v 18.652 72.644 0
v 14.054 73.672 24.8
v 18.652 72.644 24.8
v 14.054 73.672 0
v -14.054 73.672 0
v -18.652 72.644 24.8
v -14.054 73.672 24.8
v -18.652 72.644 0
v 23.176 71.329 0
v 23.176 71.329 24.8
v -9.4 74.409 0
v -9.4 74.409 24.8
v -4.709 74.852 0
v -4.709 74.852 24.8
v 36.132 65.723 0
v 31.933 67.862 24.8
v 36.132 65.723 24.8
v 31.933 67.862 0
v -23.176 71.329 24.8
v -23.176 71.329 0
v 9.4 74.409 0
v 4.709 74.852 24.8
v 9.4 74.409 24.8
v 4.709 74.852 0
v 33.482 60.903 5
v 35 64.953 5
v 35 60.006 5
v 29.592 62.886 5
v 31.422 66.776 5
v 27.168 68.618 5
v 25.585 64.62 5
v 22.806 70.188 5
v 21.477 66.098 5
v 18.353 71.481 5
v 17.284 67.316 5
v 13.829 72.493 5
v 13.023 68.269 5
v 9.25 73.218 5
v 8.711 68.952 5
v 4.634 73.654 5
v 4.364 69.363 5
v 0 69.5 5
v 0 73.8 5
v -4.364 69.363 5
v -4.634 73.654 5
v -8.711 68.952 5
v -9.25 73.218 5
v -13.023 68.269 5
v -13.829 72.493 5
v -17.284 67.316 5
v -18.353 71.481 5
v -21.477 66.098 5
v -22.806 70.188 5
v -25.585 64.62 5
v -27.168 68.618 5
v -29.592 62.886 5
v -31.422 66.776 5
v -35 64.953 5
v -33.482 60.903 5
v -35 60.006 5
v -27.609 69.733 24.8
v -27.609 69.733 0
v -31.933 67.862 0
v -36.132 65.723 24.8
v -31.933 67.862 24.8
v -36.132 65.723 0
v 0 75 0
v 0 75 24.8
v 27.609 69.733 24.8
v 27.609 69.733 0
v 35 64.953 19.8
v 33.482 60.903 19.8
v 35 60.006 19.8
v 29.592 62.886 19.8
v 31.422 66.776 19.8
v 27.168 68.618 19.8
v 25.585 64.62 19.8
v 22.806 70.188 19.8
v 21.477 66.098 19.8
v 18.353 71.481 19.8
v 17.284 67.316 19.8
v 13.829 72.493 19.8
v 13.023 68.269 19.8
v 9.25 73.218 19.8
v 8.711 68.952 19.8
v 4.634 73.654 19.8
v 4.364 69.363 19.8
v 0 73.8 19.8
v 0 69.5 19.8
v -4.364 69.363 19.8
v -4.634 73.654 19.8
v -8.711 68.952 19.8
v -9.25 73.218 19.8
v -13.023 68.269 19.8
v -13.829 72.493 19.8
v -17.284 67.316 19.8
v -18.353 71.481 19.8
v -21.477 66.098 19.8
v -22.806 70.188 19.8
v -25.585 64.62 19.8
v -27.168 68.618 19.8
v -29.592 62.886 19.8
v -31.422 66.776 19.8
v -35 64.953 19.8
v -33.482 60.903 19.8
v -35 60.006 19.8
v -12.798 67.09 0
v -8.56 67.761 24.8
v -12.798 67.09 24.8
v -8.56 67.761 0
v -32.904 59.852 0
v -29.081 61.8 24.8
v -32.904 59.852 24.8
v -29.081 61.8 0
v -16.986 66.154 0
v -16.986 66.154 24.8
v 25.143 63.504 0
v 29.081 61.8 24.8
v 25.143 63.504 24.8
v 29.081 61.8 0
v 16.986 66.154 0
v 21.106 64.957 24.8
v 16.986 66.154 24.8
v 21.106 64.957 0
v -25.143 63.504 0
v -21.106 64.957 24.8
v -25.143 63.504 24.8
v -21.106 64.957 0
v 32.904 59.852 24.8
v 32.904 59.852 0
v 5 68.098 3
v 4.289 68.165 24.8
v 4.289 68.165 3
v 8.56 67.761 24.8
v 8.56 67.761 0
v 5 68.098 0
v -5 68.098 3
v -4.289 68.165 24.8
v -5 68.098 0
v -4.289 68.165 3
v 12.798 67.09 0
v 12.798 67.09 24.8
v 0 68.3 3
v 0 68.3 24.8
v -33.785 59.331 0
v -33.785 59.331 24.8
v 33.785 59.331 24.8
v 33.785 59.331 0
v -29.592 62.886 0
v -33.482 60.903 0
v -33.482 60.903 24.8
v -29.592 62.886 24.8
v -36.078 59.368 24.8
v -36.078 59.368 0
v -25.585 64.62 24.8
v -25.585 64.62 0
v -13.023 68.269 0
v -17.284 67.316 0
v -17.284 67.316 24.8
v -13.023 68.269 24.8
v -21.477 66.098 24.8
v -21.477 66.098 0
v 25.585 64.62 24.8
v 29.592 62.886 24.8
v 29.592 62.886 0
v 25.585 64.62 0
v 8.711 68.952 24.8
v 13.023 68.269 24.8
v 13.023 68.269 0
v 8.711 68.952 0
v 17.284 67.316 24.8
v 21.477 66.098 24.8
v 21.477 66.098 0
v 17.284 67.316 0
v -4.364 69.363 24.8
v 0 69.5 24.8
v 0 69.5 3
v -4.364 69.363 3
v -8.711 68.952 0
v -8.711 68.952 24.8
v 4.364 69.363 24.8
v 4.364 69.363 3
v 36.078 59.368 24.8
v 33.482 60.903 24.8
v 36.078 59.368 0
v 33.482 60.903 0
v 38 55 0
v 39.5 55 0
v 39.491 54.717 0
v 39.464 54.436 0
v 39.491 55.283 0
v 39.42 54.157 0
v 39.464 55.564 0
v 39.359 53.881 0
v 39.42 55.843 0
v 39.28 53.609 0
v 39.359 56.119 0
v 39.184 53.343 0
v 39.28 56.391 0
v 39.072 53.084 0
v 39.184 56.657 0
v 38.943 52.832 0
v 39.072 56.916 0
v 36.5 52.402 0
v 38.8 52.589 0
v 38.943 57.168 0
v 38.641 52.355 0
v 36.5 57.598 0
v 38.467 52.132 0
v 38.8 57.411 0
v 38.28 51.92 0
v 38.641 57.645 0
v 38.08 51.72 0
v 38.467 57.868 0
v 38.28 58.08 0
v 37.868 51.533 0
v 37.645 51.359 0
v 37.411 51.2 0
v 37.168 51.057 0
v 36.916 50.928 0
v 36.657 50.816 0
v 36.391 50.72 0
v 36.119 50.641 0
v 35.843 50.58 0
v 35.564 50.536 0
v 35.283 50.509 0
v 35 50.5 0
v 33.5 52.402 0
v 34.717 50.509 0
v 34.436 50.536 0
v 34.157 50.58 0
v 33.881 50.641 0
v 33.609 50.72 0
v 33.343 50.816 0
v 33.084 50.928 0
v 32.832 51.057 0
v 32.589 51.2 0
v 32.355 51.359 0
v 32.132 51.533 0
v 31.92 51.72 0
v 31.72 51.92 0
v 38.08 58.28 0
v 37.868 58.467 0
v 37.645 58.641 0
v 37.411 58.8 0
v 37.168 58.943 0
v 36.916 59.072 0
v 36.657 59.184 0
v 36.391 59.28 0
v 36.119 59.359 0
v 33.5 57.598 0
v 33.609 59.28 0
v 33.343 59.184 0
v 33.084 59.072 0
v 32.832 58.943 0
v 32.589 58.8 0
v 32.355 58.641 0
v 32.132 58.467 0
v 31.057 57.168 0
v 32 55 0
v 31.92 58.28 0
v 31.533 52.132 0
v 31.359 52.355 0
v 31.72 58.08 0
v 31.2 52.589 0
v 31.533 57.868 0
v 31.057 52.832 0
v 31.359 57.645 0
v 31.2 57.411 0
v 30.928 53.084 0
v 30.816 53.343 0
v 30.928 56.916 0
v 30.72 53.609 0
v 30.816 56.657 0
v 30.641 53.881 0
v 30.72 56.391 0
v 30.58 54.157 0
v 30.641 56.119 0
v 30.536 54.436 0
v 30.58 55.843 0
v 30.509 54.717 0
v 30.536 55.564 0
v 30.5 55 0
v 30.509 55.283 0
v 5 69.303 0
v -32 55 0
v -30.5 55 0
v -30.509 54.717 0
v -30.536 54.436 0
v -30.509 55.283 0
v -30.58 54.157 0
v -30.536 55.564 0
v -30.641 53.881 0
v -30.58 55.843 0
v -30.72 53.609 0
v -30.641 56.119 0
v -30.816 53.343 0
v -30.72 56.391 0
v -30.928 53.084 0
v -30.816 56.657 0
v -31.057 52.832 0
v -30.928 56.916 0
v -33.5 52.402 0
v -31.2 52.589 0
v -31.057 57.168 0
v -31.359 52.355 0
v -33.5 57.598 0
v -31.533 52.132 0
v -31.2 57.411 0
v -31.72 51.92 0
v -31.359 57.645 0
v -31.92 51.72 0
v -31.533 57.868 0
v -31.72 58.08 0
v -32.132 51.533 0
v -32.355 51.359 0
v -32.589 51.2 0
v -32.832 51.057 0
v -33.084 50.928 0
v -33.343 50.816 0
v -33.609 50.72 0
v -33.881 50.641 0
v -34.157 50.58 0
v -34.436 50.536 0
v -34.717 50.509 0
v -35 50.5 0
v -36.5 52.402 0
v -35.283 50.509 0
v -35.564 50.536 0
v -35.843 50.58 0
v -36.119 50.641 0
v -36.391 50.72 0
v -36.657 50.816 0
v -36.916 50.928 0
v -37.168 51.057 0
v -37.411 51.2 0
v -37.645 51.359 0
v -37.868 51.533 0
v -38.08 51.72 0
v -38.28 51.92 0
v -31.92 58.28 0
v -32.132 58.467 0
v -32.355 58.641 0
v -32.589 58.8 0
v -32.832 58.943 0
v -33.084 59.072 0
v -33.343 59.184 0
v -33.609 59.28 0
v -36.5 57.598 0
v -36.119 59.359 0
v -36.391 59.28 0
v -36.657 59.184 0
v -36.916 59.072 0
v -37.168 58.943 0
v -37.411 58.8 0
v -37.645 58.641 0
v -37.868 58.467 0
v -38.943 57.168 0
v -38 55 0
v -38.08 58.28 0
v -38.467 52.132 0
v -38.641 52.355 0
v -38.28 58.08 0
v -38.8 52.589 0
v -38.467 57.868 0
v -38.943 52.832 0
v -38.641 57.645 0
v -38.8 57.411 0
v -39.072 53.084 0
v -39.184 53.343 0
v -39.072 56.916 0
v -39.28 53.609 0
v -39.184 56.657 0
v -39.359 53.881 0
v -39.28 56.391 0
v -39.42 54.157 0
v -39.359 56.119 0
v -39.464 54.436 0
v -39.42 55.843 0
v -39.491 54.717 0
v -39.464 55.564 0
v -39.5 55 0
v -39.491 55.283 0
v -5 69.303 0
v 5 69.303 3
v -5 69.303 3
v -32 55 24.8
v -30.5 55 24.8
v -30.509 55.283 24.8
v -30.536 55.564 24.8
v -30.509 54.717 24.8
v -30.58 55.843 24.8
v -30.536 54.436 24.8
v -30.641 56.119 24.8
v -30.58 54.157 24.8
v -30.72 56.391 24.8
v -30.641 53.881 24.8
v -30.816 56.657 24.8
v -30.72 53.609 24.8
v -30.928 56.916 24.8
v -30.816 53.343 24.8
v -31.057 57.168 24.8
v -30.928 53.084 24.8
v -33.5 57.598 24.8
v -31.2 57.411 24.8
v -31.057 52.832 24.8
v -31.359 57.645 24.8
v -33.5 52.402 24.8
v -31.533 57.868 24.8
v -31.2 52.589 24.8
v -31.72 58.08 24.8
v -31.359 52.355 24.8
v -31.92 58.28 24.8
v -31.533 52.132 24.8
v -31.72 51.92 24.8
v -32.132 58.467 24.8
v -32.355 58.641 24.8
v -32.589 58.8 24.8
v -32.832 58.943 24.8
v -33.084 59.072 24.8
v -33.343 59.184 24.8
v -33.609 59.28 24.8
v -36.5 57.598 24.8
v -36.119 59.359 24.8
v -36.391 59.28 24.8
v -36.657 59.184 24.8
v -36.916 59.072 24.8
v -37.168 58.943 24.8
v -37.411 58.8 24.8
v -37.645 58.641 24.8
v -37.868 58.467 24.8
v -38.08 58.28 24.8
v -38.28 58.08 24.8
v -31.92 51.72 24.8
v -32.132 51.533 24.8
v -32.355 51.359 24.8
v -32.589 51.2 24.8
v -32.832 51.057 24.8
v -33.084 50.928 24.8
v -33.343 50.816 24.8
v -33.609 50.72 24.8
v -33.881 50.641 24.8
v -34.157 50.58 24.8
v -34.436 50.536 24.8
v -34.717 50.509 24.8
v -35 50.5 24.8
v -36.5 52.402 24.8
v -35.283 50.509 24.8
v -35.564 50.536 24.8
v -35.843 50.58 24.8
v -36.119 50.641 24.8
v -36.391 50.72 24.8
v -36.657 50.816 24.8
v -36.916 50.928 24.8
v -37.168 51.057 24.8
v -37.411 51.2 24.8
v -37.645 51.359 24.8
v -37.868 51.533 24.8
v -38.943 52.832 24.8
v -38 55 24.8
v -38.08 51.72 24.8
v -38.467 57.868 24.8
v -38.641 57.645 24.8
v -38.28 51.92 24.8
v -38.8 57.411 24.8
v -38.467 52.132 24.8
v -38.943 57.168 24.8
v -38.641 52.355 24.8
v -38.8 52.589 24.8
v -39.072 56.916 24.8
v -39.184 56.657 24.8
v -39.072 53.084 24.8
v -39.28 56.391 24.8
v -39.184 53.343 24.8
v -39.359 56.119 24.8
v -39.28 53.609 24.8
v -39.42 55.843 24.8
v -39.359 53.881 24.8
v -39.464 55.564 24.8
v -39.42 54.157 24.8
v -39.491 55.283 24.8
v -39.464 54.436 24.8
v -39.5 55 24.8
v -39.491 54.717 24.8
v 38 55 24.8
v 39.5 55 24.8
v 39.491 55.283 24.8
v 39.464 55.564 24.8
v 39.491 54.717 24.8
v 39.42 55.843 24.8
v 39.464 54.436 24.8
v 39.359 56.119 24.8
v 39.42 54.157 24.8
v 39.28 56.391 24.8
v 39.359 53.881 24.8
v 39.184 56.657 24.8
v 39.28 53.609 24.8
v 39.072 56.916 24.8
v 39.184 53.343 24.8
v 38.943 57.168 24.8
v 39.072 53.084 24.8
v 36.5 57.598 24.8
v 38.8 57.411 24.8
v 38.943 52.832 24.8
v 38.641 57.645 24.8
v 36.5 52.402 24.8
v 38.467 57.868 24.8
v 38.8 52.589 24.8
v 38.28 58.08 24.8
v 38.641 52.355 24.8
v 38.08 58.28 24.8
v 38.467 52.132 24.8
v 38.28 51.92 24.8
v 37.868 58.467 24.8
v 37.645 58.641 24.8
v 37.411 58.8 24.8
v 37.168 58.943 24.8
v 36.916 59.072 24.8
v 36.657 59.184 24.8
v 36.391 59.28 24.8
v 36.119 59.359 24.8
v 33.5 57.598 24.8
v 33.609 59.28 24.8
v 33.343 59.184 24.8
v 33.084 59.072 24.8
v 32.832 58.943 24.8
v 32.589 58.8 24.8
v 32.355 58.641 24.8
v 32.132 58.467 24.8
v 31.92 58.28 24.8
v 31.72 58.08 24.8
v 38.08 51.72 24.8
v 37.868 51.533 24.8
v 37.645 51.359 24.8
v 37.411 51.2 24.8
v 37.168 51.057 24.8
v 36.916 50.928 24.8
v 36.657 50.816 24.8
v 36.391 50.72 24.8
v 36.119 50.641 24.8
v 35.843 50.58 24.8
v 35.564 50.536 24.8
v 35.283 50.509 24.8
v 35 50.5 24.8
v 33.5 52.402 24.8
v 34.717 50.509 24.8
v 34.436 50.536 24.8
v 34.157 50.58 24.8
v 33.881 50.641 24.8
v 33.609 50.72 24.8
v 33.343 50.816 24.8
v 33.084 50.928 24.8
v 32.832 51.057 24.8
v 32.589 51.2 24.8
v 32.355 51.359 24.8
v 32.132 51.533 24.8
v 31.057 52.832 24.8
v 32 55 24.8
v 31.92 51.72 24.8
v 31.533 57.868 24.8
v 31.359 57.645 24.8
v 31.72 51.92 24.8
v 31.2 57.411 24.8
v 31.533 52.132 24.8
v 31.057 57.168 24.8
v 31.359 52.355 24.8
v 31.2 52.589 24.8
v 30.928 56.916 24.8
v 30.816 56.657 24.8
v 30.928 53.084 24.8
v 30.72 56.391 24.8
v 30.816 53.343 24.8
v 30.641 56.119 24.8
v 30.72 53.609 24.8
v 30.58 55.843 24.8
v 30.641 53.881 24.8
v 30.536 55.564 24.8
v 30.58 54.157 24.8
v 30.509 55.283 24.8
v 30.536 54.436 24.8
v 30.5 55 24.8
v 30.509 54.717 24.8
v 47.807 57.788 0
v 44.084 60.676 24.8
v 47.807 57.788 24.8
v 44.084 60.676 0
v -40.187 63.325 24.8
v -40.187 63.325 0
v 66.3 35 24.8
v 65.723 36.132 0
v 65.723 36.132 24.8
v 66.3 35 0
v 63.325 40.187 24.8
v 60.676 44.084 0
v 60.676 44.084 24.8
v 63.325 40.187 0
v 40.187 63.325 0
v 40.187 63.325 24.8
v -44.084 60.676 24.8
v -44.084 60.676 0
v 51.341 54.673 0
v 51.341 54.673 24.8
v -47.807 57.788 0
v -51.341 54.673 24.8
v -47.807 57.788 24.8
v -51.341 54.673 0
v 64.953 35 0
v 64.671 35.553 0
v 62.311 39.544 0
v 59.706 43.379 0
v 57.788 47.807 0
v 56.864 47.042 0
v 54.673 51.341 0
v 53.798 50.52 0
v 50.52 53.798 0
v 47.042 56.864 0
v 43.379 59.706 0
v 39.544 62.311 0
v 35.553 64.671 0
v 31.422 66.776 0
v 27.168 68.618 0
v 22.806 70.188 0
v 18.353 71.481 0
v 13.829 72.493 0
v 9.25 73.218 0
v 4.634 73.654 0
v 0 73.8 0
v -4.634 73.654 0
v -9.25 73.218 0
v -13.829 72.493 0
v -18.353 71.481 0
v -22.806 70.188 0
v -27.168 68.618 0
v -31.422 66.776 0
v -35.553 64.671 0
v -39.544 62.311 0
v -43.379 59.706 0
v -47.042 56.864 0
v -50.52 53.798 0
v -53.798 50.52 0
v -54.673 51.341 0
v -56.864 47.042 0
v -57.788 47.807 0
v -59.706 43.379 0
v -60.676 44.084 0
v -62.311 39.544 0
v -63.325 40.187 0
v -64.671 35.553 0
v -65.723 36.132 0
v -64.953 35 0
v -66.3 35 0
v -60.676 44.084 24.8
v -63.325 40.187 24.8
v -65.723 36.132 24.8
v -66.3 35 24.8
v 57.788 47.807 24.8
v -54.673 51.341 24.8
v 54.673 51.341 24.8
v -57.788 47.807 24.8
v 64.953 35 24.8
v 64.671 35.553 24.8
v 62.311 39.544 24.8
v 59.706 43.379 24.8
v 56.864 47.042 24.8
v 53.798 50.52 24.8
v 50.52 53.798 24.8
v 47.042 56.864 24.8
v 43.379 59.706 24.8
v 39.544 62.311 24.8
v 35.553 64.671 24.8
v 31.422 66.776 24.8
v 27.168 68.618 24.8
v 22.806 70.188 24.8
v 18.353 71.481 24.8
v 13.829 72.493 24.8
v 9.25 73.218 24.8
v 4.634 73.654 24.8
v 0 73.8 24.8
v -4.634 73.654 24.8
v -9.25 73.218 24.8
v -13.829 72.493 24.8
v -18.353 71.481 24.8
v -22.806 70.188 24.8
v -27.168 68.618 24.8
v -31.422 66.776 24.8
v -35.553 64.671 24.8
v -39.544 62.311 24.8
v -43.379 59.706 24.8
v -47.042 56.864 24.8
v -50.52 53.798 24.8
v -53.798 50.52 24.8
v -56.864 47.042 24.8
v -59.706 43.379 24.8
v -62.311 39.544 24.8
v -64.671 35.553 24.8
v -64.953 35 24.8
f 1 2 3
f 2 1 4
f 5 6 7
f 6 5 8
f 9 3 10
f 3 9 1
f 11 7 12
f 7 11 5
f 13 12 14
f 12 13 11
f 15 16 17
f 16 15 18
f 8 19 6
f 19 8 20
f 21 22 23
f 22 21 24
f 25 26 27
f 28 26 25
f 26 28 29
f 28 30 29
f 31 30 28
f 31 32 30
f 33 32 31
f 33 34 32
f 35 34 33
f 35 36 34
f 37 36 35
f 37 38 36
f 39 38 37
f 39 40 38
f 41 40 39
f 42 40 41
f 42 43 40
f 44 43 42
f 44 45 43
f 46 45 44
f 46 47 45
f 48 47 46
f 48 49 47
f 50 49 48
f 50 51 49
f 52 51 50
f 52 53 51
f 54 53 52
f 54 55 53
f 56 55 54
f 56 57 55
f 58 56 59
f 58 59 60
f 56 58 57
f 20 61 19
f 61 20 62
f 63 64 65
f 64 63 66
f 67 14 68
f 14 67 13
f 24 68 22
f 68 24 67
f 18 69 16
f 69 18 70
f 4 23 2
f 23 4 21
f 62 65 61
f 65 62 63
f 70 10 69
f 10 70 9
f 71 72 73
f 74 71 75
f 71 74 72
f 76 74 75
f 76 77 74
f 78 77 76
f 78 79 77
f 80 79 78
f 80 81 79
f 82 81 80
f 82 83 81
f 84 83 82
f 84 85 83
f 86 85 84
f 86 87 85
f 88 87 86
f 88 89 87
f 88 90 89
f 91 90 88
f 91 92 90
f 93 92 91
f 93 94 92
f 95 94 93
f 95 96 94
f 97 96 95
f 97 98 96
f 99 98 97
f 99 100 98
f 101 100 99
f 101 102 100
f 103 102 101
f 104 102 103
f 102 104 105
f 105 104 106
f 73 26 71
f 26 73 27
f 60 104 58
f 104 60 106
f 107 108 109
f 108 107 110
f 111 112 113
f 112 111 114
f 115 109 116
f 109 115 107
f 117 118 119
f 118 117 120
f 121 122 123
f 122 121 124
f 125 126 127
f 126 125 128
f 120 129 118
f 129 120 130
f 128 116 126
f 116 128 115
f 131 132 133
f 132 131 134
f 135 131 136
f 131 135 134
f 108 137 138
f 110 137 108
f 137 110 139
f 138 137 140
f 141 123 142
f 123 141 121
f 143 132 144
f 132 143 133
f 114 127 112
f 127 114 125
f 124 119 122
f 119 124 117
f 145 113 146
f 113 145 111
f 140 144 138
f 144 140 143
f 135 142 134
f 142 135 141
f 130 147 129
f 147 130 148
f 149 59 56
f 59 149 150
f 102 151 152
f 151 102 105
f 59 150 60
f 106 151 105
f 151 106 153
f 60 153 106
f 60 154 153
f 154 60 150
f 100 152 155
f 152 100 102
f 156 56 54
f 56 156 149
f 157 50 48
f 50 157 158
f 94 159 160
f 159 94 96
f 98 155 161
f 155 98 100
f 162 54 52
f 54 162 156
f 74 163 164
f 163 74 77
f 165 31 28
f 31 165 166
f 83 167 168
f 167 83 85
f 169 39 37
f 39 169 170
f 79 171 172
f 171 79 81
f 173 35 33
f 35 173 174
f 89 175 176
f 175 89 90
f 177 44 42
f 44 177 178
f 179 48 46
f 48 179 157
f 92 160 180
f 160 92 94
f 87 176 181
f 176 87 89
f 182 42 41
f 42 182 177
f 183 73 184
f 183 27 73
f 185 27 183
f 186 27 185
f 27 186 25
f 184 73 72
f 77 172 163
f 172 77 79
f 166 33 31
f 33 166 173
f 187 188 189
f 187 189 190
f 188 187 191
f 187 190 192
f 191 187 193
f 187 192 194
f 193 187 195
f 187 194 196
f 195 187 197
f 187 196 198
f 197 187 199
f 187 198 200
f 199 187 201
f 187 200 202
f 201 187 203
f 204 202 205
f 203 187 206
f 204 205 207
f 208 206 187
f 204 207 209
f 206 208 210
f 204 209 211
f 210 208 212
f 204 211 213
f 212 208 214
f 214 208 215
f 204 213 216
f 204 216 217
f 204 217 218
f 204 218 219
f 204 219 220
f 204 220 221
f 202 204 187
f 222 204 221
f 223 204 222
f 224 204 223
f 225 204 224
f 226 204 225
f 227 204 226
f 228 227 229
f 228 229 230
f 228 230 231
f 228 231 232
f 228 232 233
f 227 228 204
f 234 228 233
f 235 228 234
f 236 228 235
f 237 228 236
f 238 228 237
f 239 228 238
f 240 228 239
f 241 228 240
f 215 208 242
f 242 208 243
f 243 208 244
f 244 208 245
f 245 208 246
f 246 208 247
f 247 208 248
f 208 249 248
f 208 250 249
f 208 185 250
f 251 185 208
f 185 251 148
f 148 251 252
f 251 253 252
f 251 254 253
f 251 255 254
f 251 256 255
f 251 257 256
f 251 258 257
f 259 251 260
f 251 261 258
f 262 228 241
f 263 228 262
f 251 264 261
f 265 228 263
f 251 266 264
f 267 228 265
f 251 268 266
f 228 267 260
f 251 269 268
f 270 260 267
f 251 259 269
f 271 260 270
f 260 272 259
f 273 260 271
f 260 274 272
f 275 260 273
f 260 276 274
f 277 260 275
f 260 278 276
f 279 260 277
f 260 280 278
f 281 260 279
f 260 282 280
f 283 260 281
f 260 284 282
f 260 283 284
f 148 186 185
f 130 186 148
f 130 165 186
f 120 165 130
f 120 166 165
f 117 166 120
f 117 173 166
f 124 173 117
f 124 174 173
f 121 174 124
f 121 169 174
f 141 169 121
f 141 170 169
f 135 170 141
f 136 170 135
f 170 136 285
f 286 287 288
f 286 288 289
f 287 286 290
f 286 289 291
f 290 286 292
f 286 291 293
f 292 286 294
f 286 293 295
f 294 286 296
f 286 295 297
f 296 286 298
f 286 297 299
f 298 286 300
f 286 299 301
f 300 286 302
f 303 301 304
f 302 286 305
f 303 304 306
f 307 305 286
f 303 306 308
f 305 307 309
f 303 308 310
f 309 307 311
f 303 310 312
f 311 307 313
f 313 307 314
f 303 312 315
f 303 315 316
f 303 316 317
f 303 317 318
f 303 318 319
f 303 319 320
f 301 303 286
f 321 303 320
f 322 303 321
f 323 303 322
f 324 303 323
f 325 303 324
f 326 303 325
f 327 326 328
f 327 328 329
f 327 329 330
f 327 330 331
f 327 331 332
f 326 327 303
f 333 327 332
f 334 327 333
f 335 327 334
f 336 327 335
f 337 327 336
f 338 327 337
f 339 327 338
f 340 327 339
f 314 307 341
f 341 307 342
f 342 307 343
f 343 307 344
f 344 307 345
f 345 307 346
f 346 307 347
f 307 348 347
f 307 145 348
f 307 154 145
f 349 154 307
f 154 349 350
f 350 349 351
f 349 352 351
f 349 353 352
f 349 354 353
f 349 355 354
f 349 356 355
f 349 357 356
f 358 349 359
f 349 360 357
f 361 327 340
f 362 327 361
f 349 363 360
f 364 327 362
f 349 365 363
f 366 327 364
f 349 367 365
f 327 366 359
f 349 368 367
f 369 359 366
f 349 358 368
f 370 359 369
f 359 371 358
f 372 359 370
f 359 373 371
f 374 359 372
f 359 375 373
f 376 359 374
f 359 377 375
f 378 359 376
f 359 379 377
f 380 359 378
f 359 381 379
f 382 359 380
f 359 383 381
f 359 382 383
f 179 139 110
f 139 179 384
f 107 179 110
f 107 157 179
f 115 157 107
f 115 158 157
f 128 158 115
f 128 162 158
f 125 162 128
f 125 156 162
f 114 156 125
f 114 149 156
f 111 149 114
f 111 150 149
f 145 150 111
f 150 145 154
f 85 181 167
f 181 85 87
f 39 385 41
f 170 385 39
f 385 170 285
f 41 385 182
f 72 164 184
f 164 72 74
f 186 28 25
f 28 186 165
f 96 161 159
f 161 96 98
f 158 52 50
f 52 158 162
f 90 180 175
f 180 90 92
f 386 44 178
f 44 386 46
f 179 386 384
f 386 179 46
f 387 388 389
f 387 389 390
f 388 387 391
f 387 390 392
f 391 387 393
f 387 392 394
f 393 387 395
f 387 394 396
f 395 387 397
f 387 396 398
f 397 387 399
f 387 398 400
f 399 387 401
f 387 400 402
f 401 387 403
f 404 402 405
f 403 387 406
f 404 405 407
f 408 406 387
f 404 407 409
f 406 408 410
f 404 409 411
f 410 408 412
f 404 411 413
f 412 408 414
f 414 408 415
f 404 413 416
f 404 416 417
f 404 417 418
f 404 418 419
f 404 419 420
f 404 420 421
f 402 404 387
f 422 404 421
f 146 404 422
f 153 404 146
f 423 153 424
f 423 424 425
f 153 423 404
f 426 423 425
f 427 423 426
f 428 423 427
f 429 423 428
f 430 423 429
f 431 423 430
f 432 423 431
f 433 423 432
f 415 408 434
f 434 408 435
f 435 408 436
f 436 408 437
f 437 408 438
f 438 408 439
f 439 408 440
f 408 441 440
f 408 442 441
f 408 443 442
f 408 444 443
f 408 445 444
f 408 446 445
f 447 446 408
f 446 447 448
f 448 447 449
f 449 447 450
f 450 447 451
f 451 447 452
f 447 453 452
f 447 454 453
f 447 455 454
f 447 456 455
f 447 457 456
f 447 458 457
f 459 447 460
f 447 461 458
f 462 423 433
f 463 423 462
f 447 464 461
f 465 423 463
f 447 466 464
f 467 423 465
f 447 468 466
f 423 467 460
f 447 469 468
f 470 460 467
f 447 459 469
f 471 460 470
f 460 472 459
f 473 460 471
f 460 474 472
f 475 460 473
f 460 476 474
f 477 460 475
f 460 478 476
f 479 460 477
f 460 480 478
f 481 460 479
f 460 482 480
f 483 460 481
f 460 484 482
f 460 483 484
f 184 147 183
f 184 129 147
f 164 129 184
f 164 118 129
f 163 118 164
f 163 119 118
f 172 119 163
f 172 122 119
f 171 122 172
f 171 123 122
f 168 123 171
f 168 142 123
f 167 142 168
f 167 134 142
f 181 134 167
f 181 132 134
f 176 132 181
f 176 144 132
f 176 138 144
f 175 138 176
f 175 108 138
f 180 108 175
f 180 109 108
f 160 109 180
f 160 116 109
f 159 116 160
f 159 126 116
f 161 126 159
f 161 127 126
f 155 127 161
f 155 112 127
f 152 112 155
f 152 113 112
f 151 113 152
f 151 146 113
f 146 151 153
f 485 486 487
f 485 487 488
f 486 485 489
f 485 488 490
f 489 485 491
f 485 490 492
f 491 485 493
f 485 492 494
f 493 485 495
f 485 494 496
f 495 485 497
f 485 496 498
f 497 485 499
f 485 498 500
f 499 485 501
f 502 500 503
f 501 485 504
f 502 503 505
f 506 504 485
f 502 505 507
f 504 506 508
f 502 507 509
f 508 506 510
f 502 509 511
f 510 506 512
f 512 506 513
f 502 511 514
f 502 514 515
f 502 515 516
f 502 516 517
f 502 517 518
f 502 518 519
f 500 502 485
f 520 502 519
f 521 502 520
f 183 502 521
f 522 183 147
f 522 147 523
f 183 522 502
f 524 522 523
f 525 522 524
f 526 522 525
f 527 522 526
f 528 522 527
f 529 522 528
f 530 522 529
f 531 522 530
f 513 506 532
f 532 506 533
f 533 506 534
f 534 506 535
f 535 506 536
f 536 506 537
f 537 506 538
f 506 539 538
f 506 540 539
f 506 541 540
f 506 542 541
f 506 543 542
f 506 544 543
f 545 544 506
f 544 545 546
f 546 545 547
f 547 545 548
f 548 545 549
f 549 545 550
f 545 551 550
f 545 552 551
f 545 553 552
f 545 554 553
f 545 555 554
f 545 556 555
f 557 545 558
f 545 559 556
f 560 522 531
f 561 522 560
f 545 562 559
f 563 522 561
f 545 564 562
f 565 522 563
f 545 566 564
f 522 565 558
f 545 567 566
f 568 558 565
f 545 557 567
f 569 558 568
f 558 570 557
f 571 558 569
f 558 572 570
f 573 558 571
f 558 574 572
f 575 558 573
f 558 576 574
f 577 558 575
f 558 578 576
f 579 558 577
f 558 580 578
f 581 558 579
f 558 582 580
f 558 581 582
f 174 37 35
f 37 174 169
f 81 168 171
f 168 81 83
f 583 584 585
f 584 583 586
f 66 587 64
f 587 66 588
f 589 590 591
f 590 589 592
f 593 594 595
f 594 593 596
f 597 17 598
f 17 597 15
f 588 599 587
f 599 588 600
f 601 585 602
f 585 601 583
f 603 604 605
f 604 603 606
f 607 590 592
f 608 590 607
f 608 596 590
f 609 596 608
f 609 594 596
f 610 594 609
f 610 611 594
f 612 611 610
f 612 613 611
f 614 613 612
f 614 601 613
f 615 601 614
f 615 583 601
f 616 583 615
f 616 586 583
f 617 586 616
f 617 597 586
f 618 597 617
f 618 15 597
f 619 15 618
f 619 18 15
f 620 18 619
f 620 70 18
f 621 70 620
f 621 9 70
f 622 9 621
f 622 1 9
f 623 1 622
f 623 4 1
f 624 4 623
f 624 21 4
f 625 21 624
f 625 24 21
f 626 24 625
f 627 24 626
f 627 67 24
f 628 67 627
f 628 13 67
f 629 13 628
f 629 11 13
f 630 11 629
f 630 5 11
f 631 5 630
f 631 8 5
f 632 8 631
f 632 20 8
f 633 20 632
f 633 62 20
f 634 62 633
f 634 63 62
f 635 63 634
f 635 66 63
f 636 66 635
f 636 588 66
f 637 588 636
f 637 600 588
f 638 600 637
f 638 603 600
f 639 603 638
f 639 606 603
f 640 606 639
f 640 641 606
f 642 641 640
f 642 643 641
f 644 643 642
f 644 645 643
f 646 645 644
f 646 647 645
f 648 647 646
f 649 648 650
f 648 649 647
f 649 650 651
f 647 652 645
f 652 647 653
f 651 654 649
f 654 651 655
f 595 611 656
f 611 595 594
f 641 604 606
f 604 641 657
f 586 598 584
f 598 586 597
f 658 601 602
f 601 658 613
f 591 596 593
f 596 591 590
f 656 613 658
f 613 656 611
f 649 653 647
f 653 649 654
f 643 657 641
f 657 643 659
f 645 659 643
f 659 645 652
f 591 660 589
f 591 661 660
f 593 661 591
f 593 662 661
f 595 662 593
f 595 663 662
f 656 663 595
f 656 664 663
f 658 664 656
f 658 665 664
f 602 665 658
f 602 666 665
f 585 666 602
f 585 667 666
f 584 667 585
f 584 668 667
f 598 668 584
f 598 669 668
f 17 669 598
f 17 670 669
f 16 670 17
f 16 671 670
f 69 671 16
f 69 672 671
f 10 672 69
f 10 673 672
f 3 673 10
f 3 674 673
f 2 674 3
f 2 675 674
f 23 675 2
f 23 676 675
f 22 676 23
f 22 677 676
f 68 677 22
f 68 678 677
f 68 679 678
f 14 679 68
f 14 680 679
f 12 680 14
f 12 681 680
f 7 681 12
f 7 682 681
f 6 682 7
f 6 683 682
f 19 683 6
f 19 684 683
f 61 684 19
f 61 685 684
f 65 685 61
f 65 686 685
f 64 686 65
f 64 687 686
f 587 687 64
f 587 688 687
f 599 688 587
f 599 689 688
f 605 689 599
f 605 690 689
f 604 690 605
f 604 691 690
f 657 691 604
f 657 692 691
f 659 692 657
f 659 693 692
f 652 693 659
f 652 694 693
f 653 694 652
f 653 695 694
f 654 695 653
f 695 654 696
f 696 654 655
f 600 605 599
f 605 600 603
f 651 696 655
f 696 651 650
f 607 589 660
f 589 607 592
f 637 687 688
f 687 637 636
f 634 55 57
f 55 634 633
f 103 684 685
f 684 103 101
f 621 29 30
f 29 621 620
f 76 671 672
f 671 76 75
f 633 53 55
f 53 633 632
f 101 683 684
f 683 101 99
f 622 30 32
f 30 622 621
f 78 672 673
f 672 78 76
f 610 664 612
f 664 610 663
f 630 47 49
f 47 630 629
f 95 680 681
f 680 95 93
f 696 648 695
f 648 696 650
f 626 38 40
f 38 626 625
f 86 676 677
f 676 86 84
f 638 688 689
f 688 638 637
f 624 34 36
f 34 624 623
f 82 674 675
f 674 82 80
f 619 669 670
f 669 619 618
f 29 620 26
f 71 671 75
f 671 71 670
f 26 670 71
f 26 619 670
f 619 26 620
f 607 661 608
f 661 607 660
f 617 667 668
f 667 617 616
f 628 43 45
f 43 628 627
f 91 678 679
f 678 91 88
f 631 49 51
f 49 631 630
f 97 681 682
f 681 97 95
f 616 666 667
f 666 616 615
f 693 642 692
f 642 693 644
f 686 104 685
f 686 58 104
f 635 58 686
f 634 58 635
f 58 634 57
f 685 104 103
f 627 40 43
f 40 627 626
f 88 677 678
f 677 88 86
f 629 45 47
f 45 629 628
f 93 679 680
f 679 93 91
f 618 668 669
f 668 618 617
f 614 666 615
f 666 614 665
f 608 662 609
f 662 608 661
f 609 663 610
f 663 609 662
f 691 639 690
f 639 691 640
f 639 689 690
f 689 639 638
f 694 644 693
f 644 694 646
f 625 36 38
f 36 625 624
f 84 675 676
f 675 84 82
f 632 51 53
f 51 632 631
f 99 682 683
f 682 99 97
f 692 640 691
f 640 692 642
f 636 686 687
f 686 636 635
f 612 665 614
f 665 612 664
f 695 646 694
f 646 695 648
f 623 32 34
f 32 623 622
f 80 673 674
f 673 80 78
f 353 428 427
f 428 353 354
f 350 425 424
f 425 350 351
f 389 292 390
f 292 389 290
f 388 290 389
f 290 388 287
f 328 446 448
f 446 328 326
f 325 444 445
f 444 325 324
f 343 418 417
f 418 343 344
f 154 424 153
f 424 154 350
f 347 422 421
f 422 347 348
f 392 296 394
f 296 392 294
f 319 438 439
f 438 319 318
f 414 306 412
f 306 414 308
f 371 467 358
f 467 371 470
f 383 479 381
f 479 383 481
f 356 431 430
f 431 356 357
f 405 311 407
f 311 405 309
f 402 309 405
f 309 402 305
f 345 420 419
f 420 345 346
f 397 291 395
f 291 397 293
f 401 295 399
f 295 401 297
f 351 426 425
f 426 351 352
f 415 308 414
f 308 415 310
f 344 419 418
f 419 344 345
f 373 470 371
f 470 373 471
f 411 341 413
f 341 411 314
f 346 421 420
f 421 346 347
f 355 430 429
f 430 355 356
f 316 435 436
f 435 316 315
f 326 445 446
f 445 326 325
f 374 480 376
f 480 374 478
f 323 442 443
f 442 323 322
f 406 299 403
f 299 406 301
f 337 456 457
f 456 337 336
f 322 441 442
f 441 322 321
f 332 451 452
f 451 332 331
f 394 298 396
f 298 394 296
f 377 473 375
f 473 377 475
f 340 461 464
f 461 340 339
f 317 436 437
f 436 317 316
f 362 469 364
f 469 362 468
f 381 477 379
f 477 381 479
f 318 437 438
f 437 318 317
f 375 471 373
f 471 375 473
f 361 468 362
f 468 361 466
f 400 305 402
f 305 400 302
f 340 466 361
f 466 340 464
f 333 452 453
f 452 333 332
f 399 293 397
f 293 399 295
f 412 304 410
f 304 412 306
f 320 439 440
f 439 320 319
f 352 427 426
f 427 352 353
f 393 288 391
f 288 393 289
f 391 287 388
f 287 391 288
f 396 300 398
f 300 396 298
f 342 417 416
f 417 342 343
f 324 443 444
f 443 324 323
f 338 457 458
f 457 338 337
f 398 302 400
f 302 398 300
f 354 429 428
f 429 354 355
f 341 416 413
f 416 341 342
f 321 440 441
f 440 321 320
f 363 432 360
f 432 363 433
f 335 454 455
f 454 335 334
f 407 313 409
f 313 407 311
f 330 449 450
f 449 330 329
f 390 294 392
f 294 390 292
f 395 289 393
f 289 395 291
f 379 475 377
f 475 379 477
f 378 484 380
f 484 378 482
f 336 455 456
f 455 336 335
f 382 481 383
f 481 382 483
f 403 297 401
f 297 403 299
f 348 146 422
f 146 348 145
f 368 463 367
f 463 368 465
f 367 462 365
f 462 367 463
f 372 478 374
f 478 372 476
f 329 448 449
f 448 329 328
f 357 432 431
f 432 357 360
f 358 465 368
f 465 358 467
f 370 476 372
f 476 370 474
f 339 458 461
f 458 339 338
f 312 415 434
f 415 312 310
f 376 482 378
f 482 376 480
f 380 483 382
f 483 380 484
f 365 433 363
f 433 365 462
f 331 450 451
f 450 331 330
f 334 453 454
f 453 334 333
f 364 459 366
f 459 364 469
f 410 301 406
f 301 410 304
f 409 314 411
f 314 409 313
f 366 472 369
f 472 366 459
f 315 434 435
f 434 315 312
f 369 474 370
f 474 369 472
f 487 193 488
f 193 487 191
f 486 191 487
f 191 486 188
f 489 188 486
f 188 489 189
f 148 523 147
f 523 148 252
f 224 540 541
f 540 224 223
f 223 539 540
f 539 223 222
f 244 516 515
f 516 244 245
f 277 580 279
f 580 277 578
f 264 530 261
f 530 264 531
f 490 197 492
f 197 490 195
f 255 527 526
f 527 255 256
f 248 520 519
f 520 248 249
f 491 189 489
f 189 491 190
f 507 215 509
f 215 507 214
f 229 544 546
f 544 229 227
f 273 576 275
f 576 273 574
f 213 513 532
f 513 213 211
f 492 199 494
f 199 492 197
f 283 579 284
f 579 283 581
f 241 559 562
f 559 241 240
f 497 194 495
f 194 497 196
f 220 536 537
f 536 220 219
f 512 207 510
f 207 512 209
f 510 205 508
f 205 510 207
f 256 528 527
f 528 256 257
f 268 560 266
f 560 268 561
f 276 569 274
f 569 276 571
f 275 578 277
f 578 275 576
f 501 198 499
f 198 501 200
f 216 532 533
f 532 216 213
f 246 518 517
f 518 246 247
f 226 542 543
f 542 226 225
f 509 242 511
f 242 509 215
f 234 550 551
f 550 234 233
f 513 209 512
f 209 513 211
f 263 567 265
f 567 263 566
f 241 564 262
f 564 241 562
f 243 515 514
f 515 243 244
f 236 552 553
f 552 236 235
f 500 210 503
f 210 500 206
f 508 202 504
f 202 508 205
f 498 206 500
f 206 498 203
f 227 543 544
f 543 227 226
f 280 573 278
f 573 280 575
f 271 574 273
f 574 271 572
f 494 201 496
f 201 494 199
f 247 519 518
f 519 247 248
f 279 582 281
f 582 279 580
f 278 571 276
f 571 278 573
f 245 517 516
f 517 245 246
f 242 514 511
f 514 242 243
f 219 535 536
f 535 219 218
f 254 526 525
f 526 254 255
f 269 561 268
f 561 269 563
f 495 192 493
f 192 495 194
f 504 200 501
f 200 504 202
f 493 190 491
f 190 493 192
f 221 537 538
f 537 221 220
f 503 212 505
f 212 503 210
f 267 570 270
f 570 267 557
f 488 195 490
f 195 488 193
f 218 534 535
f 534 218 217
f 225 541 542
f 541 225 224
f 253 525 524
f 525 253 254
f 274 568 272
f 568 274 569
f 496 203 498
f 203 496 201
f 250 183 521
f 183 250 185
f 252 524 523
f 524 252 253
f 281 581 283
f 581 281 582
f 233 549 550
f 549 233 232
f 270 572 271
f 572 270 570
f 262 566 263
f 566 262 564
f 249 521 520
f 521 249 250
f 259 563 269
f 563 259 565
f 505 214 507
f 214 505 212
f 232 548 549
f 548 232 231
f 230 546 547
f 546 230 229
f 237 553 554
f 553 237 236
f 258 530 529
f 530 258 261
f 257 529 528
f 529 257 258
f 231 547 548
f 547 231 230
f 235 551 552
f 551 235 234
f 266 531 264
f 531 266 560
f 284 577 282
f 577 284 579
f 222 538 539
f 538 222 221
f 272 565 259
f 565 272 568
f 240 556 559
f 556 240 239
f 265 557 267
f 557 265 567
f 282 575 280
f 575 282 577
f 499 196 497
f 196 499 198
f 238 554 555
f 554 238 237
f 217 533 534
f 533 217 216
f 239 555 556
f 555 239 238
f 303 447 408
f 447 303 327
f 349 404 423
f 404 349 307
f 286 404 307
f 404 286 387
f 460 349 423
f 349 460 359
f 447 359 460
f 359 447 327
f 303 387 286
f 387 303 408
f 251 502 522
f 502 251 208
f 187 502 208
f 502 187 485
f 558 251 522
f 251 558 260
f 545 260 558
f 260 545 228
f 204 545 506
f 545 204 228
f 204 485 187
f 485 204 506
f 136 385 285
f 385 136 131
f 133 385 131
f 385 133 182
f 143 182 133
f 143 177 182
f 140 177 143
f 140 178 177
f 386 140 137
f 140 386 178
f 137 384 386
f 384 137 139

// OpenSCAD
$fn=100;
module cubexy(x,y,z,zz) {
    translate([-x/2,-y/2,zz]) cube([x,y,z]);
}

module stand(h) {
    difference() {
        cylinder(d=8,h=h);
        translate([0,0,-1]) cylinder(d=6,h=h+2,$fn=6);
    }
}


difference() {
union() {
    // coil support
    difference() {
        translate([0,0,5]) cylinder(r=75,h=14.8);
    
        translate([-80,-80,-1]) cube([160,80+50,30]);
        translate([35,-80,-1]) cube([30,160,30]);
        translate([-35-30,-80,-1]) cube([30,160,30]);
        translate([0,0,-1]) cylinder(r=69.5-1.2,h=30);
    }
    // inner wall
    difference() {
        translate([0,0,0]) cylinder(r=69.5,h=24.8);
    
        translate([-80,-80,-1]) cube([160,80+50,30]);
        translate([38,-80,-1]) cube([30,160,30]);
        translate([-38-30,-80,-1]) cube([30,160,30]);
        translate([0,0,-1]) cylinder(r=69.5-1.2,h=30);
    }
    // outer wall
    difference() {
        translate([0,0,0]) cylinder(r=75,h=24.8);
    
        translate([-80,-80,-1]) cube([160,80+35,30]);
        //translate([40,-80,-1]) cube([30,160,30]);
        //translate([-40-30,-80,-1]) cube([30,160,30]);
        translate([0,0,-1]) cylinder(r=75-1.2,h=30);
    }
    
    translate([-35,55,0]) cylinder(d=9,h=24.8);
    translate([35,55,0]) cylinder(d=9,h=24.8);
}

//#cubexy(67.6,160,12.4,6.2);

    translate([-35,55,-1]) #cylinder(d=6,h=30,$fn=6);
    translate([35,55,-1]) #cylinder(d=6,h=30,$fn=6);
    translate([-5,62,0]) #cube([10,10,3]);
}

//translate([-35,55,0]) stand(24.8);
//translate([35,55,0]) stand(24.8);
